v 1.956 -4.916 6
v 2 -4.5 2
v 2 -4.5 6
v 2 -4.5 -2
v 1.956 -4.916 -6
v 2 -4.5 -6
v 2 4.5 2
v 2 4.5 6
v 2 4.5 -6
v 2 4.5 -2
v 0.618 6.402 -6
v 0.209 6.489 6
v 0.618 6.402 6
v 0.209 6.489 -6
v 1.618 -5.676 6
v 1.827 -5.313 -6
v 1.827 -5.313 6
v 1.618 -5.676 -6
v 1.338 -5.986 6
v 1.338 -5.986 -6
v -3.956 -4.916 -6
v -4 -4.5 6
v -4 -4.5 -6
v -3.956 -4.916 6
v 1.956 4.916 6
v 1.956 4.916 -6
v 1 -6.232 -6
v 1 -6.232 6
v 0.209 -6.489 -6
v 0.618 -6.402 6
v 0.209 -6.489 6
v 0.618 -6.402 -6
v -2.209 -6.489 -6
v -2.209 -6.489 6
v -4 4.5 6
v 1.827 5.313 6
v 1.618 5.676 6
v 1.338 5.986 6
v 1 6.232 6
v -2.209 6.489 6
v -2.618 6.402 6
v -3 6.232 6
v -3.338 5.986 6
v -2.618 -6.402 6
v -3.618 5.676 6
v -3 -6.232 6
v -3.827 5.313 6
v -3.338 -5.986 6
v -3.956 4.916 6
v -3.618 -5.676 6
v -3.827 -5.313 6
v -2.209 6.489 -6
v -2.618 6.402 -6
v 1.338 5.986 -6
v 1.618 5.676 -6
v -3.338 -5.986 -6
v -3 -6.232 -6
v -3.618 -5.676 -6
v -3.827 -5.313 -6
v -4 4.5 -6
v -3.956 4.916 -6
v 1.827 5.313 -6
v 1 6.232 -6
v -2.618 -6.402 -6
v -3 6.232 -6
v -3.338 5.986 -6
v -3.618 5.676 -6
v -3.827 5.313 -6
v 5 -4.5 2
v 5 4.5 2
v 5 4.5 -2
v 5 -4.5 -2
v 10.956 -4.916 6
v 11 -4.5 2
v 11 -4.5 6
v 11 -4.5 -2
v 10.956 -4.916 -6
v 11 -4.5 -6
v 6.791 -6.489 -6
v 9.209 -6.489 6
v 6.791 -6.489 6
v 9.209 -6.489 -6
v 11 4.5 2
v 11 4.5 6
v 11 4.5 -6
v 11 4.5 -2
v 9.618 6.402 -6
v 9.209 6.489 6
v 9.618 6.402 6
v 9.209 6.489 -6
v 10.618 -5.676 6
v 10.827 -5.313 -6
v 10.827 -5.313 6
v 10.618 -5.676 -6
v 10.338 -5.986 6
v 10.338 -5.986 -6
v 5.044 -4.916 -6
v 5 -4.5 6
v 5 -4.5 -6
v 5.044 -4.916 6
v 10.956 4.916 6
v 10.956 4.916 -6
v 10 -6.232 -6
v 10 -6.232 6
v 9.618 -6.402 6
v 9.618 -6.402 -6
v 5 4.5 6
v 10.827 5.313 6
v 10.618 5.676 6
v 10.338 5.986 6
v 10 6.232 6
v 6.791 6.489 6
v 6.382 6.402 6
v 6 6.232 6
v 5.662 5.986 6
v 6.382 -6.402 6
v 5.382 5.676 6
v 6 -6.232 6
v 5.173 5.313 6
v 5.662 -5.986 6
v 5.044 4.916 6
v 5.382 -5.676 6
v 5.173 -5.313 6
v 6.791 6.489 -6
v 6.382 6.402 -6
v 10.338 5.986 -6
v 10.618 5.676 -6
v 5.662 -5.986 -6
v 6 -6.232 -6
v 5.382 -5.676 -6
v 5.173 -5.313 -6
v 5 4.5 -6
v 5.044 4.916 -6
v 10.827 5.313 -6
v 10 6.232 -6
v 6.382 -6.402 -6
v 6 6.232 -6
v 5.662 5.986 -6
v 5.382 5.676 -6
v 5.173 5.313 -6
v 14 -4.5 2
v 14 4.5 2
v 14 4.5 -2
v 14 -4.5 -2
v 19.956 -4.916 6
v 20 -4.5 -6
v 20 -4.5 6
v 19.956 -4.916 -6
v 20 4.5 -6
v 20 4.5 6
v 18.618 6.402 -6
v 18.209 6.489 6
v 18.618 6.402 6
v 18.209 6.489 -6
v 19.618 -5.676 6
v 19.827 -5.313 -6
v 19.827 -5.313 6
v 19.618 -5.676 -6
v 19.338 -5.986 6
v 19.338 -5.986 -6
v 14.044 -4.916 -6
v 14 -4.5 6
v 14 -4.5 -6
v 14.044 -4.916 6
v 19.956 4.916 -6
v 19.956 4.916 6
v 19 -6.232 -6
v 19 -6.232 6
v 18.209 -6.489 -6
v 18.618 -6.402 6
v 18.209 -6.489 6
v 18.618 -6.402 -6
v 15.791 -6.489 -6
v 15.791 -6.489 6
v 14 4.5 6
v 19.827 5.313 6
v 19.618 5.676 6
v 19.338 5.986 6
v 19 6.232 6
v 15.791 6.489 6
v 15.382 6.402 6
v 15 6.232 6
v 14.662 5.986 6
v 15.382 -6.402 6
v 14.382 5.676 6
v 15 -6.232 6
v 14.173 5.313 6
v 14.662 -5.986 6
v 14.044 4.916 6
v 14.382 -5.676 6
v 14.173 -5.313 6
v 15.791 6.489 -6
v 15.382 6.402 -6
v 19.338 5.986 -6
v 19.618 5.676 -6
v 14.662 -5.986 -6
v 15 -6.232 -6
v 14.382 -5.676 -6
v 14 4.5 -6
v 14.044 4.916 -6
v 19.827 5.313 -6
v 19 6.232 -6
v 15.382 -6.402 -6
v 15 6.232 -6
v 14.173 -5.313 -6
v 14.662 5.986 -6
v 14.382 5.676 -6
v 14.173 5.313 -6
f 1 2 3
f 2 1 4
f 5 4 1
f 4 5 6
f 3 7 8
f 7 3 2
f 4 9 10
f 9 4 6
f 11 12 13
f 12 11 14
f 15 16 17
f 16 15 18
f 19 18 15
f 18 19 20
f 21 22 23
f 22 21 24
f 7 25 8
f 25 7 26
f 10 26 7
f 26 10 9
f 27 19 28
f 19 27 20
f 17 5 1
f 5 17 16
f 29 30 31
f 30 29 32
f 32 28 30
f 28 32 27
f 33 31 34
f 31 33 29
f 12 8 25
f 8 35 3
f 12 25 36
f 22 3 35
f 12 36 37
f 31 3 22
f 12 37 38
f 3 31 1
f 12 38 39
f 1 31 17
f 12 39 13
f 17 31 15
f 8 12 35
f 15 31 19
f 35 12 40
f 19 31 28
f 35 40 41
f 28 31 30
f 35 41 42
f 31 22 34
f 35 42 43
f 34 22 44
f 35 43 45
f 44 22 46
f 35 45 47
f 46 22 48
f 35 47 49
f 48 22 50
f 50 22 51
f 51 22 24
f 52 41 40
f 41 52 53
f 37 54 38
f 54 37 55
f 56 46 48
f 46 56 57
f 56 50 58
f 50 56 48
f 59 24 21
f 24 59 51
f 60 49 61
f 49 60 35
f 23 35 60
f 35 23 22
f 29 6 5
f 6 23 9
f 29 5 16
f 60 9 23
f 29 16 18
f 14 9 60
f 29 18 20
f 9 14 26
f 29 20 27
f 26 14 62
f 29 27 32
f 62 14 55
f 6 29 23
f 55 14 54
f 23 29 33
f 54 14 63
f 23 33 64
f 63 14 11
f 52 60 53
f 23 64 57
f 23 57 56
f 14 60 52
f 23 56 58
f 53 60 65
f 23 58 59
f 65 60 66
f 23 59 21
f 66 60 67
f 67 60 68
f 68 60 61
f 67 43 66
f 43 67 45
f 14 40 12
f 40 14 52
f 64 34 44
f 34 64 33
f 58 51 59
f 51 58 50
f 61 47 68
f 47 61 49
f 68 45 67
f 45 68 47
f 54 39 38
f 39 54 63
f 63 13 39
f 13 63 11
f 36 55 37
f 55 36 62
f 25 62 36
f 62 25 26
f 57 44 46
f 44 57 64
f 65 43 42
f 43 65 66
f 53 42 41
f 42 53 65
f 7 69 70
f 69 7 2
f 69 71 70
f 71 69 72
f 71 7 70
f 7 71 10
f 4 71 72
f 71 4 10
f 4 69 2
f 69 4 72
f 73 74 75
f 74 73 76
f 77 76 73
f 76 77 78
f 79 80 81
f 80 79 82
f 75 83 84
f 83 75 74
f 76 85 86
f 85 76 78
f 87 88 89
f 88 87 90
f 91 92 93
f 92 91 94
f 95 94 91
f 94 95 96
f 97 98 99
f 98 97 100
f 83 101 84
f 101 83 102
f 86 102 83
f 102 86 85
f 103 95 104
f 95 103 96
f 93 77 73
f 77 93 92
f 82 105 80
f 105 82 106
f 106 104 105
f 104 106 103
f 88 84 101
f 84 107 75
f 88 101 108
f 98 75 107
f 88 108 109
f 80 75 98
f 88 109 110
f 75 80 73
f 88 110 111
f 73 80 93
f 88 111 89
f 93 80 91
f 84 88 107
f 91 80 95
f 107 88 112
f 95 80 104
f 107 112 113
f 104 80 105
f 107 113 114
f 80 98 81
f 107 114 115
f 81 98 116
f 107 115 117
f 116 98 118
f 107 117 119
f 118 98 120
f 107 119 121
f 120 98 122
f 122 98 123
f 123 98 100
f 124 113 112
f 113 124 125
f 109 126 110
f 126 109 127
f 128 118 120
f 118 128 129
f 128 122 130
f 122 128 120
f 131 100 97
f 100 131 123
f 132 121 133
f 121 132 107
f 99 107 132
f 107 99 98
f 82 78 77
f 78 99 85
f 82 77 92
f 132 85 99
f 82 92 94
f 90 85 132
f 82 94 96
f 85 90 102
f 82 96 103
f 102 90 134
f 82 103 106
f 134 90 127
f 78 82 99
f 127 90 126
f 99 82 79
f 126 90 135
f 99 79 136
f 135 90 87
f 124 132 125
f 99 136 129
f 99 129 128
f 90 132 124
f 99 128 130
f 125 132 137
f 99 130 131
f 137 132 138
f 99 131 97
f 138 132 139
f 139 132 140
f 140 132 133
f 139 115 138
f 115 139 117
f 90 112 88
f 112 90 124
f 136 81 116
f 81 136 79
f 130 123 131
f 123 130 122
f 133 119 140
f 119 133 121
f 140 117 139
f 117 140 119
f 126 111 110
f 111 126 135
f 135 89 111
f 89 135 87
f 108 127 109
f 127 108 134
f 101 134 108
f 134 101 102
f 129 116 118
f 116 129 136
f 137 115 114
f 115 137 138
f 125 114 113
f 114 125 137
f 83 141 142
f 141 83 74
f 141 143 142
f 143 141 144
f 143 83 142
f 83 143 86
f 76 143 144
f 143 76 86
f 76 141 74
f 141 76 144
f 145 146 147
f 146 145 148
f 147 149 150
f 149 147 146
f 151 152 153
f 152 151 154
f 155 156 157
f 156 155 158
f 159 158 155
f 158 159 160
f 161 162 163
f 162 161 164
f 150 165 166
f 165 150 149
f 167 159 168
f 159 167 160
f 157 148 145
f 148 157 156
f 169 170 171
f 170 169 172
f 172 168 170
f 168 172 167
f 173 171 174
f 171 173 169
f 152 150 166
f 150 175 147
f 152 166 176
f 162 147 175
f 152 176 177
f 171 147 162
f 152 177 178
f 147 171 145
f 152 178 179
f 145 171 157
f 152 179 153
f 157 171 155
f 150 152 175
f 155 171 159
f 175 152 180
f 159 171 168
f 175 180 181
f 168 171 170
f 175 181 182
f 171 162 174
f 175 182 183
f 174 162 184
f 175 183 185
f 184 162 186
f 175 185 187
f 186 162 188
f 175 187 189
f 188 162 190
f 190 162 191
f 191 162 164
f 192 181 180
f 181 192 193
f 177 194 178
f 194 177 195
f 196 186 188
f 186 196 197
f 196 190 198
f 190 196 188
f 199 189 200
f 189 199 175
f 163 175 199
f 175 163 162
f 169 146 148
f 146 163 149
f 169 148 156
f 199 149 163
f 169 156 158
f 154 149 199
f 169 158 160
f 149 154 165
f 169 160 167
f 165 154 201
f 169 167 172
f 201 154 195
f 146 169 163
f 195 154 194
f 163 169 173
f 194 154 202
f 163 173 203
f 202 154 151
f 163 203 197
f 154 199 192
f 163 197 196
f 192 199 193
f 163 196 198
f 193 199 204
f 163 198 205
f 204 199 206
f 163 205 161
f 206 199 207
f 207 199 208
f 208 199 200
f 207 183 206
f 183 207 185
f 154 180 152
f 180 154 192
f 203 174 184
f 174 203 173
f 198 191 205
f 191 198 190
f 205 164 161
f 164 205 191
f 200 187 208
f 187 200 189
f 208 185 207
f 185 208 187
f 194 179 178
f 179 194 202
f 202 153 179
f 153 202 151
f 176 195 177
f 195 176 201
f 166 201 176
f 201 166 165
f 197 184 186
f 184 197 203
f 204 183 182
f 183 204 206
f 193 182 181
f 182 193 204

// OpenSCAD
$fn=30;
height=12;
radius=2;
union(){
    hull(){
        translate([0,-4.5,0])cylinder(r=radius,h=height, center=true);
        translate([-2,4.5,0])cylinder(r=radius,h=height, center=true);
        translate([0,4.5,0])cylinder(r=radius,h=height, center=true);
        translate([-2,-4.5,0])cylinder(r=radius,h=height, center=true);
  }
  translate([3.5,0,0])cube([radius/0.6666666667,radius+7,radius+2],center=true);
   translate([9,0,0]) hull(){
        translate([0,-4.5,0])cylinder(r=radius,h=height, center=true);
        translate([-2,4.5,0])cylinder(r=radius,h=height, center=true);
        translate([0,4.5,0])cylinder(r=radius,h=height, center=true);
        translate([-2,-4.5,0])cylinder(r=radius,h=height, center=true);
  }
  translate([12.5,0,0])cube([radius/0.6666666667,radius+7,radius+2],center=true);
   translate([18,0,0]) hull(){
        translate([0,-4.5,0])cylinder(r=radius,h=height, center=true);
        translate([-2,4.5,0])cylinder(r=radius,h=height, center=true);
        translate([0,4.5,0])cylinder(r=radius,h=height, center=true);
        translate([-2,-4.5,0])cylinder(r=radius,h=height, center=true); 
   }
}
